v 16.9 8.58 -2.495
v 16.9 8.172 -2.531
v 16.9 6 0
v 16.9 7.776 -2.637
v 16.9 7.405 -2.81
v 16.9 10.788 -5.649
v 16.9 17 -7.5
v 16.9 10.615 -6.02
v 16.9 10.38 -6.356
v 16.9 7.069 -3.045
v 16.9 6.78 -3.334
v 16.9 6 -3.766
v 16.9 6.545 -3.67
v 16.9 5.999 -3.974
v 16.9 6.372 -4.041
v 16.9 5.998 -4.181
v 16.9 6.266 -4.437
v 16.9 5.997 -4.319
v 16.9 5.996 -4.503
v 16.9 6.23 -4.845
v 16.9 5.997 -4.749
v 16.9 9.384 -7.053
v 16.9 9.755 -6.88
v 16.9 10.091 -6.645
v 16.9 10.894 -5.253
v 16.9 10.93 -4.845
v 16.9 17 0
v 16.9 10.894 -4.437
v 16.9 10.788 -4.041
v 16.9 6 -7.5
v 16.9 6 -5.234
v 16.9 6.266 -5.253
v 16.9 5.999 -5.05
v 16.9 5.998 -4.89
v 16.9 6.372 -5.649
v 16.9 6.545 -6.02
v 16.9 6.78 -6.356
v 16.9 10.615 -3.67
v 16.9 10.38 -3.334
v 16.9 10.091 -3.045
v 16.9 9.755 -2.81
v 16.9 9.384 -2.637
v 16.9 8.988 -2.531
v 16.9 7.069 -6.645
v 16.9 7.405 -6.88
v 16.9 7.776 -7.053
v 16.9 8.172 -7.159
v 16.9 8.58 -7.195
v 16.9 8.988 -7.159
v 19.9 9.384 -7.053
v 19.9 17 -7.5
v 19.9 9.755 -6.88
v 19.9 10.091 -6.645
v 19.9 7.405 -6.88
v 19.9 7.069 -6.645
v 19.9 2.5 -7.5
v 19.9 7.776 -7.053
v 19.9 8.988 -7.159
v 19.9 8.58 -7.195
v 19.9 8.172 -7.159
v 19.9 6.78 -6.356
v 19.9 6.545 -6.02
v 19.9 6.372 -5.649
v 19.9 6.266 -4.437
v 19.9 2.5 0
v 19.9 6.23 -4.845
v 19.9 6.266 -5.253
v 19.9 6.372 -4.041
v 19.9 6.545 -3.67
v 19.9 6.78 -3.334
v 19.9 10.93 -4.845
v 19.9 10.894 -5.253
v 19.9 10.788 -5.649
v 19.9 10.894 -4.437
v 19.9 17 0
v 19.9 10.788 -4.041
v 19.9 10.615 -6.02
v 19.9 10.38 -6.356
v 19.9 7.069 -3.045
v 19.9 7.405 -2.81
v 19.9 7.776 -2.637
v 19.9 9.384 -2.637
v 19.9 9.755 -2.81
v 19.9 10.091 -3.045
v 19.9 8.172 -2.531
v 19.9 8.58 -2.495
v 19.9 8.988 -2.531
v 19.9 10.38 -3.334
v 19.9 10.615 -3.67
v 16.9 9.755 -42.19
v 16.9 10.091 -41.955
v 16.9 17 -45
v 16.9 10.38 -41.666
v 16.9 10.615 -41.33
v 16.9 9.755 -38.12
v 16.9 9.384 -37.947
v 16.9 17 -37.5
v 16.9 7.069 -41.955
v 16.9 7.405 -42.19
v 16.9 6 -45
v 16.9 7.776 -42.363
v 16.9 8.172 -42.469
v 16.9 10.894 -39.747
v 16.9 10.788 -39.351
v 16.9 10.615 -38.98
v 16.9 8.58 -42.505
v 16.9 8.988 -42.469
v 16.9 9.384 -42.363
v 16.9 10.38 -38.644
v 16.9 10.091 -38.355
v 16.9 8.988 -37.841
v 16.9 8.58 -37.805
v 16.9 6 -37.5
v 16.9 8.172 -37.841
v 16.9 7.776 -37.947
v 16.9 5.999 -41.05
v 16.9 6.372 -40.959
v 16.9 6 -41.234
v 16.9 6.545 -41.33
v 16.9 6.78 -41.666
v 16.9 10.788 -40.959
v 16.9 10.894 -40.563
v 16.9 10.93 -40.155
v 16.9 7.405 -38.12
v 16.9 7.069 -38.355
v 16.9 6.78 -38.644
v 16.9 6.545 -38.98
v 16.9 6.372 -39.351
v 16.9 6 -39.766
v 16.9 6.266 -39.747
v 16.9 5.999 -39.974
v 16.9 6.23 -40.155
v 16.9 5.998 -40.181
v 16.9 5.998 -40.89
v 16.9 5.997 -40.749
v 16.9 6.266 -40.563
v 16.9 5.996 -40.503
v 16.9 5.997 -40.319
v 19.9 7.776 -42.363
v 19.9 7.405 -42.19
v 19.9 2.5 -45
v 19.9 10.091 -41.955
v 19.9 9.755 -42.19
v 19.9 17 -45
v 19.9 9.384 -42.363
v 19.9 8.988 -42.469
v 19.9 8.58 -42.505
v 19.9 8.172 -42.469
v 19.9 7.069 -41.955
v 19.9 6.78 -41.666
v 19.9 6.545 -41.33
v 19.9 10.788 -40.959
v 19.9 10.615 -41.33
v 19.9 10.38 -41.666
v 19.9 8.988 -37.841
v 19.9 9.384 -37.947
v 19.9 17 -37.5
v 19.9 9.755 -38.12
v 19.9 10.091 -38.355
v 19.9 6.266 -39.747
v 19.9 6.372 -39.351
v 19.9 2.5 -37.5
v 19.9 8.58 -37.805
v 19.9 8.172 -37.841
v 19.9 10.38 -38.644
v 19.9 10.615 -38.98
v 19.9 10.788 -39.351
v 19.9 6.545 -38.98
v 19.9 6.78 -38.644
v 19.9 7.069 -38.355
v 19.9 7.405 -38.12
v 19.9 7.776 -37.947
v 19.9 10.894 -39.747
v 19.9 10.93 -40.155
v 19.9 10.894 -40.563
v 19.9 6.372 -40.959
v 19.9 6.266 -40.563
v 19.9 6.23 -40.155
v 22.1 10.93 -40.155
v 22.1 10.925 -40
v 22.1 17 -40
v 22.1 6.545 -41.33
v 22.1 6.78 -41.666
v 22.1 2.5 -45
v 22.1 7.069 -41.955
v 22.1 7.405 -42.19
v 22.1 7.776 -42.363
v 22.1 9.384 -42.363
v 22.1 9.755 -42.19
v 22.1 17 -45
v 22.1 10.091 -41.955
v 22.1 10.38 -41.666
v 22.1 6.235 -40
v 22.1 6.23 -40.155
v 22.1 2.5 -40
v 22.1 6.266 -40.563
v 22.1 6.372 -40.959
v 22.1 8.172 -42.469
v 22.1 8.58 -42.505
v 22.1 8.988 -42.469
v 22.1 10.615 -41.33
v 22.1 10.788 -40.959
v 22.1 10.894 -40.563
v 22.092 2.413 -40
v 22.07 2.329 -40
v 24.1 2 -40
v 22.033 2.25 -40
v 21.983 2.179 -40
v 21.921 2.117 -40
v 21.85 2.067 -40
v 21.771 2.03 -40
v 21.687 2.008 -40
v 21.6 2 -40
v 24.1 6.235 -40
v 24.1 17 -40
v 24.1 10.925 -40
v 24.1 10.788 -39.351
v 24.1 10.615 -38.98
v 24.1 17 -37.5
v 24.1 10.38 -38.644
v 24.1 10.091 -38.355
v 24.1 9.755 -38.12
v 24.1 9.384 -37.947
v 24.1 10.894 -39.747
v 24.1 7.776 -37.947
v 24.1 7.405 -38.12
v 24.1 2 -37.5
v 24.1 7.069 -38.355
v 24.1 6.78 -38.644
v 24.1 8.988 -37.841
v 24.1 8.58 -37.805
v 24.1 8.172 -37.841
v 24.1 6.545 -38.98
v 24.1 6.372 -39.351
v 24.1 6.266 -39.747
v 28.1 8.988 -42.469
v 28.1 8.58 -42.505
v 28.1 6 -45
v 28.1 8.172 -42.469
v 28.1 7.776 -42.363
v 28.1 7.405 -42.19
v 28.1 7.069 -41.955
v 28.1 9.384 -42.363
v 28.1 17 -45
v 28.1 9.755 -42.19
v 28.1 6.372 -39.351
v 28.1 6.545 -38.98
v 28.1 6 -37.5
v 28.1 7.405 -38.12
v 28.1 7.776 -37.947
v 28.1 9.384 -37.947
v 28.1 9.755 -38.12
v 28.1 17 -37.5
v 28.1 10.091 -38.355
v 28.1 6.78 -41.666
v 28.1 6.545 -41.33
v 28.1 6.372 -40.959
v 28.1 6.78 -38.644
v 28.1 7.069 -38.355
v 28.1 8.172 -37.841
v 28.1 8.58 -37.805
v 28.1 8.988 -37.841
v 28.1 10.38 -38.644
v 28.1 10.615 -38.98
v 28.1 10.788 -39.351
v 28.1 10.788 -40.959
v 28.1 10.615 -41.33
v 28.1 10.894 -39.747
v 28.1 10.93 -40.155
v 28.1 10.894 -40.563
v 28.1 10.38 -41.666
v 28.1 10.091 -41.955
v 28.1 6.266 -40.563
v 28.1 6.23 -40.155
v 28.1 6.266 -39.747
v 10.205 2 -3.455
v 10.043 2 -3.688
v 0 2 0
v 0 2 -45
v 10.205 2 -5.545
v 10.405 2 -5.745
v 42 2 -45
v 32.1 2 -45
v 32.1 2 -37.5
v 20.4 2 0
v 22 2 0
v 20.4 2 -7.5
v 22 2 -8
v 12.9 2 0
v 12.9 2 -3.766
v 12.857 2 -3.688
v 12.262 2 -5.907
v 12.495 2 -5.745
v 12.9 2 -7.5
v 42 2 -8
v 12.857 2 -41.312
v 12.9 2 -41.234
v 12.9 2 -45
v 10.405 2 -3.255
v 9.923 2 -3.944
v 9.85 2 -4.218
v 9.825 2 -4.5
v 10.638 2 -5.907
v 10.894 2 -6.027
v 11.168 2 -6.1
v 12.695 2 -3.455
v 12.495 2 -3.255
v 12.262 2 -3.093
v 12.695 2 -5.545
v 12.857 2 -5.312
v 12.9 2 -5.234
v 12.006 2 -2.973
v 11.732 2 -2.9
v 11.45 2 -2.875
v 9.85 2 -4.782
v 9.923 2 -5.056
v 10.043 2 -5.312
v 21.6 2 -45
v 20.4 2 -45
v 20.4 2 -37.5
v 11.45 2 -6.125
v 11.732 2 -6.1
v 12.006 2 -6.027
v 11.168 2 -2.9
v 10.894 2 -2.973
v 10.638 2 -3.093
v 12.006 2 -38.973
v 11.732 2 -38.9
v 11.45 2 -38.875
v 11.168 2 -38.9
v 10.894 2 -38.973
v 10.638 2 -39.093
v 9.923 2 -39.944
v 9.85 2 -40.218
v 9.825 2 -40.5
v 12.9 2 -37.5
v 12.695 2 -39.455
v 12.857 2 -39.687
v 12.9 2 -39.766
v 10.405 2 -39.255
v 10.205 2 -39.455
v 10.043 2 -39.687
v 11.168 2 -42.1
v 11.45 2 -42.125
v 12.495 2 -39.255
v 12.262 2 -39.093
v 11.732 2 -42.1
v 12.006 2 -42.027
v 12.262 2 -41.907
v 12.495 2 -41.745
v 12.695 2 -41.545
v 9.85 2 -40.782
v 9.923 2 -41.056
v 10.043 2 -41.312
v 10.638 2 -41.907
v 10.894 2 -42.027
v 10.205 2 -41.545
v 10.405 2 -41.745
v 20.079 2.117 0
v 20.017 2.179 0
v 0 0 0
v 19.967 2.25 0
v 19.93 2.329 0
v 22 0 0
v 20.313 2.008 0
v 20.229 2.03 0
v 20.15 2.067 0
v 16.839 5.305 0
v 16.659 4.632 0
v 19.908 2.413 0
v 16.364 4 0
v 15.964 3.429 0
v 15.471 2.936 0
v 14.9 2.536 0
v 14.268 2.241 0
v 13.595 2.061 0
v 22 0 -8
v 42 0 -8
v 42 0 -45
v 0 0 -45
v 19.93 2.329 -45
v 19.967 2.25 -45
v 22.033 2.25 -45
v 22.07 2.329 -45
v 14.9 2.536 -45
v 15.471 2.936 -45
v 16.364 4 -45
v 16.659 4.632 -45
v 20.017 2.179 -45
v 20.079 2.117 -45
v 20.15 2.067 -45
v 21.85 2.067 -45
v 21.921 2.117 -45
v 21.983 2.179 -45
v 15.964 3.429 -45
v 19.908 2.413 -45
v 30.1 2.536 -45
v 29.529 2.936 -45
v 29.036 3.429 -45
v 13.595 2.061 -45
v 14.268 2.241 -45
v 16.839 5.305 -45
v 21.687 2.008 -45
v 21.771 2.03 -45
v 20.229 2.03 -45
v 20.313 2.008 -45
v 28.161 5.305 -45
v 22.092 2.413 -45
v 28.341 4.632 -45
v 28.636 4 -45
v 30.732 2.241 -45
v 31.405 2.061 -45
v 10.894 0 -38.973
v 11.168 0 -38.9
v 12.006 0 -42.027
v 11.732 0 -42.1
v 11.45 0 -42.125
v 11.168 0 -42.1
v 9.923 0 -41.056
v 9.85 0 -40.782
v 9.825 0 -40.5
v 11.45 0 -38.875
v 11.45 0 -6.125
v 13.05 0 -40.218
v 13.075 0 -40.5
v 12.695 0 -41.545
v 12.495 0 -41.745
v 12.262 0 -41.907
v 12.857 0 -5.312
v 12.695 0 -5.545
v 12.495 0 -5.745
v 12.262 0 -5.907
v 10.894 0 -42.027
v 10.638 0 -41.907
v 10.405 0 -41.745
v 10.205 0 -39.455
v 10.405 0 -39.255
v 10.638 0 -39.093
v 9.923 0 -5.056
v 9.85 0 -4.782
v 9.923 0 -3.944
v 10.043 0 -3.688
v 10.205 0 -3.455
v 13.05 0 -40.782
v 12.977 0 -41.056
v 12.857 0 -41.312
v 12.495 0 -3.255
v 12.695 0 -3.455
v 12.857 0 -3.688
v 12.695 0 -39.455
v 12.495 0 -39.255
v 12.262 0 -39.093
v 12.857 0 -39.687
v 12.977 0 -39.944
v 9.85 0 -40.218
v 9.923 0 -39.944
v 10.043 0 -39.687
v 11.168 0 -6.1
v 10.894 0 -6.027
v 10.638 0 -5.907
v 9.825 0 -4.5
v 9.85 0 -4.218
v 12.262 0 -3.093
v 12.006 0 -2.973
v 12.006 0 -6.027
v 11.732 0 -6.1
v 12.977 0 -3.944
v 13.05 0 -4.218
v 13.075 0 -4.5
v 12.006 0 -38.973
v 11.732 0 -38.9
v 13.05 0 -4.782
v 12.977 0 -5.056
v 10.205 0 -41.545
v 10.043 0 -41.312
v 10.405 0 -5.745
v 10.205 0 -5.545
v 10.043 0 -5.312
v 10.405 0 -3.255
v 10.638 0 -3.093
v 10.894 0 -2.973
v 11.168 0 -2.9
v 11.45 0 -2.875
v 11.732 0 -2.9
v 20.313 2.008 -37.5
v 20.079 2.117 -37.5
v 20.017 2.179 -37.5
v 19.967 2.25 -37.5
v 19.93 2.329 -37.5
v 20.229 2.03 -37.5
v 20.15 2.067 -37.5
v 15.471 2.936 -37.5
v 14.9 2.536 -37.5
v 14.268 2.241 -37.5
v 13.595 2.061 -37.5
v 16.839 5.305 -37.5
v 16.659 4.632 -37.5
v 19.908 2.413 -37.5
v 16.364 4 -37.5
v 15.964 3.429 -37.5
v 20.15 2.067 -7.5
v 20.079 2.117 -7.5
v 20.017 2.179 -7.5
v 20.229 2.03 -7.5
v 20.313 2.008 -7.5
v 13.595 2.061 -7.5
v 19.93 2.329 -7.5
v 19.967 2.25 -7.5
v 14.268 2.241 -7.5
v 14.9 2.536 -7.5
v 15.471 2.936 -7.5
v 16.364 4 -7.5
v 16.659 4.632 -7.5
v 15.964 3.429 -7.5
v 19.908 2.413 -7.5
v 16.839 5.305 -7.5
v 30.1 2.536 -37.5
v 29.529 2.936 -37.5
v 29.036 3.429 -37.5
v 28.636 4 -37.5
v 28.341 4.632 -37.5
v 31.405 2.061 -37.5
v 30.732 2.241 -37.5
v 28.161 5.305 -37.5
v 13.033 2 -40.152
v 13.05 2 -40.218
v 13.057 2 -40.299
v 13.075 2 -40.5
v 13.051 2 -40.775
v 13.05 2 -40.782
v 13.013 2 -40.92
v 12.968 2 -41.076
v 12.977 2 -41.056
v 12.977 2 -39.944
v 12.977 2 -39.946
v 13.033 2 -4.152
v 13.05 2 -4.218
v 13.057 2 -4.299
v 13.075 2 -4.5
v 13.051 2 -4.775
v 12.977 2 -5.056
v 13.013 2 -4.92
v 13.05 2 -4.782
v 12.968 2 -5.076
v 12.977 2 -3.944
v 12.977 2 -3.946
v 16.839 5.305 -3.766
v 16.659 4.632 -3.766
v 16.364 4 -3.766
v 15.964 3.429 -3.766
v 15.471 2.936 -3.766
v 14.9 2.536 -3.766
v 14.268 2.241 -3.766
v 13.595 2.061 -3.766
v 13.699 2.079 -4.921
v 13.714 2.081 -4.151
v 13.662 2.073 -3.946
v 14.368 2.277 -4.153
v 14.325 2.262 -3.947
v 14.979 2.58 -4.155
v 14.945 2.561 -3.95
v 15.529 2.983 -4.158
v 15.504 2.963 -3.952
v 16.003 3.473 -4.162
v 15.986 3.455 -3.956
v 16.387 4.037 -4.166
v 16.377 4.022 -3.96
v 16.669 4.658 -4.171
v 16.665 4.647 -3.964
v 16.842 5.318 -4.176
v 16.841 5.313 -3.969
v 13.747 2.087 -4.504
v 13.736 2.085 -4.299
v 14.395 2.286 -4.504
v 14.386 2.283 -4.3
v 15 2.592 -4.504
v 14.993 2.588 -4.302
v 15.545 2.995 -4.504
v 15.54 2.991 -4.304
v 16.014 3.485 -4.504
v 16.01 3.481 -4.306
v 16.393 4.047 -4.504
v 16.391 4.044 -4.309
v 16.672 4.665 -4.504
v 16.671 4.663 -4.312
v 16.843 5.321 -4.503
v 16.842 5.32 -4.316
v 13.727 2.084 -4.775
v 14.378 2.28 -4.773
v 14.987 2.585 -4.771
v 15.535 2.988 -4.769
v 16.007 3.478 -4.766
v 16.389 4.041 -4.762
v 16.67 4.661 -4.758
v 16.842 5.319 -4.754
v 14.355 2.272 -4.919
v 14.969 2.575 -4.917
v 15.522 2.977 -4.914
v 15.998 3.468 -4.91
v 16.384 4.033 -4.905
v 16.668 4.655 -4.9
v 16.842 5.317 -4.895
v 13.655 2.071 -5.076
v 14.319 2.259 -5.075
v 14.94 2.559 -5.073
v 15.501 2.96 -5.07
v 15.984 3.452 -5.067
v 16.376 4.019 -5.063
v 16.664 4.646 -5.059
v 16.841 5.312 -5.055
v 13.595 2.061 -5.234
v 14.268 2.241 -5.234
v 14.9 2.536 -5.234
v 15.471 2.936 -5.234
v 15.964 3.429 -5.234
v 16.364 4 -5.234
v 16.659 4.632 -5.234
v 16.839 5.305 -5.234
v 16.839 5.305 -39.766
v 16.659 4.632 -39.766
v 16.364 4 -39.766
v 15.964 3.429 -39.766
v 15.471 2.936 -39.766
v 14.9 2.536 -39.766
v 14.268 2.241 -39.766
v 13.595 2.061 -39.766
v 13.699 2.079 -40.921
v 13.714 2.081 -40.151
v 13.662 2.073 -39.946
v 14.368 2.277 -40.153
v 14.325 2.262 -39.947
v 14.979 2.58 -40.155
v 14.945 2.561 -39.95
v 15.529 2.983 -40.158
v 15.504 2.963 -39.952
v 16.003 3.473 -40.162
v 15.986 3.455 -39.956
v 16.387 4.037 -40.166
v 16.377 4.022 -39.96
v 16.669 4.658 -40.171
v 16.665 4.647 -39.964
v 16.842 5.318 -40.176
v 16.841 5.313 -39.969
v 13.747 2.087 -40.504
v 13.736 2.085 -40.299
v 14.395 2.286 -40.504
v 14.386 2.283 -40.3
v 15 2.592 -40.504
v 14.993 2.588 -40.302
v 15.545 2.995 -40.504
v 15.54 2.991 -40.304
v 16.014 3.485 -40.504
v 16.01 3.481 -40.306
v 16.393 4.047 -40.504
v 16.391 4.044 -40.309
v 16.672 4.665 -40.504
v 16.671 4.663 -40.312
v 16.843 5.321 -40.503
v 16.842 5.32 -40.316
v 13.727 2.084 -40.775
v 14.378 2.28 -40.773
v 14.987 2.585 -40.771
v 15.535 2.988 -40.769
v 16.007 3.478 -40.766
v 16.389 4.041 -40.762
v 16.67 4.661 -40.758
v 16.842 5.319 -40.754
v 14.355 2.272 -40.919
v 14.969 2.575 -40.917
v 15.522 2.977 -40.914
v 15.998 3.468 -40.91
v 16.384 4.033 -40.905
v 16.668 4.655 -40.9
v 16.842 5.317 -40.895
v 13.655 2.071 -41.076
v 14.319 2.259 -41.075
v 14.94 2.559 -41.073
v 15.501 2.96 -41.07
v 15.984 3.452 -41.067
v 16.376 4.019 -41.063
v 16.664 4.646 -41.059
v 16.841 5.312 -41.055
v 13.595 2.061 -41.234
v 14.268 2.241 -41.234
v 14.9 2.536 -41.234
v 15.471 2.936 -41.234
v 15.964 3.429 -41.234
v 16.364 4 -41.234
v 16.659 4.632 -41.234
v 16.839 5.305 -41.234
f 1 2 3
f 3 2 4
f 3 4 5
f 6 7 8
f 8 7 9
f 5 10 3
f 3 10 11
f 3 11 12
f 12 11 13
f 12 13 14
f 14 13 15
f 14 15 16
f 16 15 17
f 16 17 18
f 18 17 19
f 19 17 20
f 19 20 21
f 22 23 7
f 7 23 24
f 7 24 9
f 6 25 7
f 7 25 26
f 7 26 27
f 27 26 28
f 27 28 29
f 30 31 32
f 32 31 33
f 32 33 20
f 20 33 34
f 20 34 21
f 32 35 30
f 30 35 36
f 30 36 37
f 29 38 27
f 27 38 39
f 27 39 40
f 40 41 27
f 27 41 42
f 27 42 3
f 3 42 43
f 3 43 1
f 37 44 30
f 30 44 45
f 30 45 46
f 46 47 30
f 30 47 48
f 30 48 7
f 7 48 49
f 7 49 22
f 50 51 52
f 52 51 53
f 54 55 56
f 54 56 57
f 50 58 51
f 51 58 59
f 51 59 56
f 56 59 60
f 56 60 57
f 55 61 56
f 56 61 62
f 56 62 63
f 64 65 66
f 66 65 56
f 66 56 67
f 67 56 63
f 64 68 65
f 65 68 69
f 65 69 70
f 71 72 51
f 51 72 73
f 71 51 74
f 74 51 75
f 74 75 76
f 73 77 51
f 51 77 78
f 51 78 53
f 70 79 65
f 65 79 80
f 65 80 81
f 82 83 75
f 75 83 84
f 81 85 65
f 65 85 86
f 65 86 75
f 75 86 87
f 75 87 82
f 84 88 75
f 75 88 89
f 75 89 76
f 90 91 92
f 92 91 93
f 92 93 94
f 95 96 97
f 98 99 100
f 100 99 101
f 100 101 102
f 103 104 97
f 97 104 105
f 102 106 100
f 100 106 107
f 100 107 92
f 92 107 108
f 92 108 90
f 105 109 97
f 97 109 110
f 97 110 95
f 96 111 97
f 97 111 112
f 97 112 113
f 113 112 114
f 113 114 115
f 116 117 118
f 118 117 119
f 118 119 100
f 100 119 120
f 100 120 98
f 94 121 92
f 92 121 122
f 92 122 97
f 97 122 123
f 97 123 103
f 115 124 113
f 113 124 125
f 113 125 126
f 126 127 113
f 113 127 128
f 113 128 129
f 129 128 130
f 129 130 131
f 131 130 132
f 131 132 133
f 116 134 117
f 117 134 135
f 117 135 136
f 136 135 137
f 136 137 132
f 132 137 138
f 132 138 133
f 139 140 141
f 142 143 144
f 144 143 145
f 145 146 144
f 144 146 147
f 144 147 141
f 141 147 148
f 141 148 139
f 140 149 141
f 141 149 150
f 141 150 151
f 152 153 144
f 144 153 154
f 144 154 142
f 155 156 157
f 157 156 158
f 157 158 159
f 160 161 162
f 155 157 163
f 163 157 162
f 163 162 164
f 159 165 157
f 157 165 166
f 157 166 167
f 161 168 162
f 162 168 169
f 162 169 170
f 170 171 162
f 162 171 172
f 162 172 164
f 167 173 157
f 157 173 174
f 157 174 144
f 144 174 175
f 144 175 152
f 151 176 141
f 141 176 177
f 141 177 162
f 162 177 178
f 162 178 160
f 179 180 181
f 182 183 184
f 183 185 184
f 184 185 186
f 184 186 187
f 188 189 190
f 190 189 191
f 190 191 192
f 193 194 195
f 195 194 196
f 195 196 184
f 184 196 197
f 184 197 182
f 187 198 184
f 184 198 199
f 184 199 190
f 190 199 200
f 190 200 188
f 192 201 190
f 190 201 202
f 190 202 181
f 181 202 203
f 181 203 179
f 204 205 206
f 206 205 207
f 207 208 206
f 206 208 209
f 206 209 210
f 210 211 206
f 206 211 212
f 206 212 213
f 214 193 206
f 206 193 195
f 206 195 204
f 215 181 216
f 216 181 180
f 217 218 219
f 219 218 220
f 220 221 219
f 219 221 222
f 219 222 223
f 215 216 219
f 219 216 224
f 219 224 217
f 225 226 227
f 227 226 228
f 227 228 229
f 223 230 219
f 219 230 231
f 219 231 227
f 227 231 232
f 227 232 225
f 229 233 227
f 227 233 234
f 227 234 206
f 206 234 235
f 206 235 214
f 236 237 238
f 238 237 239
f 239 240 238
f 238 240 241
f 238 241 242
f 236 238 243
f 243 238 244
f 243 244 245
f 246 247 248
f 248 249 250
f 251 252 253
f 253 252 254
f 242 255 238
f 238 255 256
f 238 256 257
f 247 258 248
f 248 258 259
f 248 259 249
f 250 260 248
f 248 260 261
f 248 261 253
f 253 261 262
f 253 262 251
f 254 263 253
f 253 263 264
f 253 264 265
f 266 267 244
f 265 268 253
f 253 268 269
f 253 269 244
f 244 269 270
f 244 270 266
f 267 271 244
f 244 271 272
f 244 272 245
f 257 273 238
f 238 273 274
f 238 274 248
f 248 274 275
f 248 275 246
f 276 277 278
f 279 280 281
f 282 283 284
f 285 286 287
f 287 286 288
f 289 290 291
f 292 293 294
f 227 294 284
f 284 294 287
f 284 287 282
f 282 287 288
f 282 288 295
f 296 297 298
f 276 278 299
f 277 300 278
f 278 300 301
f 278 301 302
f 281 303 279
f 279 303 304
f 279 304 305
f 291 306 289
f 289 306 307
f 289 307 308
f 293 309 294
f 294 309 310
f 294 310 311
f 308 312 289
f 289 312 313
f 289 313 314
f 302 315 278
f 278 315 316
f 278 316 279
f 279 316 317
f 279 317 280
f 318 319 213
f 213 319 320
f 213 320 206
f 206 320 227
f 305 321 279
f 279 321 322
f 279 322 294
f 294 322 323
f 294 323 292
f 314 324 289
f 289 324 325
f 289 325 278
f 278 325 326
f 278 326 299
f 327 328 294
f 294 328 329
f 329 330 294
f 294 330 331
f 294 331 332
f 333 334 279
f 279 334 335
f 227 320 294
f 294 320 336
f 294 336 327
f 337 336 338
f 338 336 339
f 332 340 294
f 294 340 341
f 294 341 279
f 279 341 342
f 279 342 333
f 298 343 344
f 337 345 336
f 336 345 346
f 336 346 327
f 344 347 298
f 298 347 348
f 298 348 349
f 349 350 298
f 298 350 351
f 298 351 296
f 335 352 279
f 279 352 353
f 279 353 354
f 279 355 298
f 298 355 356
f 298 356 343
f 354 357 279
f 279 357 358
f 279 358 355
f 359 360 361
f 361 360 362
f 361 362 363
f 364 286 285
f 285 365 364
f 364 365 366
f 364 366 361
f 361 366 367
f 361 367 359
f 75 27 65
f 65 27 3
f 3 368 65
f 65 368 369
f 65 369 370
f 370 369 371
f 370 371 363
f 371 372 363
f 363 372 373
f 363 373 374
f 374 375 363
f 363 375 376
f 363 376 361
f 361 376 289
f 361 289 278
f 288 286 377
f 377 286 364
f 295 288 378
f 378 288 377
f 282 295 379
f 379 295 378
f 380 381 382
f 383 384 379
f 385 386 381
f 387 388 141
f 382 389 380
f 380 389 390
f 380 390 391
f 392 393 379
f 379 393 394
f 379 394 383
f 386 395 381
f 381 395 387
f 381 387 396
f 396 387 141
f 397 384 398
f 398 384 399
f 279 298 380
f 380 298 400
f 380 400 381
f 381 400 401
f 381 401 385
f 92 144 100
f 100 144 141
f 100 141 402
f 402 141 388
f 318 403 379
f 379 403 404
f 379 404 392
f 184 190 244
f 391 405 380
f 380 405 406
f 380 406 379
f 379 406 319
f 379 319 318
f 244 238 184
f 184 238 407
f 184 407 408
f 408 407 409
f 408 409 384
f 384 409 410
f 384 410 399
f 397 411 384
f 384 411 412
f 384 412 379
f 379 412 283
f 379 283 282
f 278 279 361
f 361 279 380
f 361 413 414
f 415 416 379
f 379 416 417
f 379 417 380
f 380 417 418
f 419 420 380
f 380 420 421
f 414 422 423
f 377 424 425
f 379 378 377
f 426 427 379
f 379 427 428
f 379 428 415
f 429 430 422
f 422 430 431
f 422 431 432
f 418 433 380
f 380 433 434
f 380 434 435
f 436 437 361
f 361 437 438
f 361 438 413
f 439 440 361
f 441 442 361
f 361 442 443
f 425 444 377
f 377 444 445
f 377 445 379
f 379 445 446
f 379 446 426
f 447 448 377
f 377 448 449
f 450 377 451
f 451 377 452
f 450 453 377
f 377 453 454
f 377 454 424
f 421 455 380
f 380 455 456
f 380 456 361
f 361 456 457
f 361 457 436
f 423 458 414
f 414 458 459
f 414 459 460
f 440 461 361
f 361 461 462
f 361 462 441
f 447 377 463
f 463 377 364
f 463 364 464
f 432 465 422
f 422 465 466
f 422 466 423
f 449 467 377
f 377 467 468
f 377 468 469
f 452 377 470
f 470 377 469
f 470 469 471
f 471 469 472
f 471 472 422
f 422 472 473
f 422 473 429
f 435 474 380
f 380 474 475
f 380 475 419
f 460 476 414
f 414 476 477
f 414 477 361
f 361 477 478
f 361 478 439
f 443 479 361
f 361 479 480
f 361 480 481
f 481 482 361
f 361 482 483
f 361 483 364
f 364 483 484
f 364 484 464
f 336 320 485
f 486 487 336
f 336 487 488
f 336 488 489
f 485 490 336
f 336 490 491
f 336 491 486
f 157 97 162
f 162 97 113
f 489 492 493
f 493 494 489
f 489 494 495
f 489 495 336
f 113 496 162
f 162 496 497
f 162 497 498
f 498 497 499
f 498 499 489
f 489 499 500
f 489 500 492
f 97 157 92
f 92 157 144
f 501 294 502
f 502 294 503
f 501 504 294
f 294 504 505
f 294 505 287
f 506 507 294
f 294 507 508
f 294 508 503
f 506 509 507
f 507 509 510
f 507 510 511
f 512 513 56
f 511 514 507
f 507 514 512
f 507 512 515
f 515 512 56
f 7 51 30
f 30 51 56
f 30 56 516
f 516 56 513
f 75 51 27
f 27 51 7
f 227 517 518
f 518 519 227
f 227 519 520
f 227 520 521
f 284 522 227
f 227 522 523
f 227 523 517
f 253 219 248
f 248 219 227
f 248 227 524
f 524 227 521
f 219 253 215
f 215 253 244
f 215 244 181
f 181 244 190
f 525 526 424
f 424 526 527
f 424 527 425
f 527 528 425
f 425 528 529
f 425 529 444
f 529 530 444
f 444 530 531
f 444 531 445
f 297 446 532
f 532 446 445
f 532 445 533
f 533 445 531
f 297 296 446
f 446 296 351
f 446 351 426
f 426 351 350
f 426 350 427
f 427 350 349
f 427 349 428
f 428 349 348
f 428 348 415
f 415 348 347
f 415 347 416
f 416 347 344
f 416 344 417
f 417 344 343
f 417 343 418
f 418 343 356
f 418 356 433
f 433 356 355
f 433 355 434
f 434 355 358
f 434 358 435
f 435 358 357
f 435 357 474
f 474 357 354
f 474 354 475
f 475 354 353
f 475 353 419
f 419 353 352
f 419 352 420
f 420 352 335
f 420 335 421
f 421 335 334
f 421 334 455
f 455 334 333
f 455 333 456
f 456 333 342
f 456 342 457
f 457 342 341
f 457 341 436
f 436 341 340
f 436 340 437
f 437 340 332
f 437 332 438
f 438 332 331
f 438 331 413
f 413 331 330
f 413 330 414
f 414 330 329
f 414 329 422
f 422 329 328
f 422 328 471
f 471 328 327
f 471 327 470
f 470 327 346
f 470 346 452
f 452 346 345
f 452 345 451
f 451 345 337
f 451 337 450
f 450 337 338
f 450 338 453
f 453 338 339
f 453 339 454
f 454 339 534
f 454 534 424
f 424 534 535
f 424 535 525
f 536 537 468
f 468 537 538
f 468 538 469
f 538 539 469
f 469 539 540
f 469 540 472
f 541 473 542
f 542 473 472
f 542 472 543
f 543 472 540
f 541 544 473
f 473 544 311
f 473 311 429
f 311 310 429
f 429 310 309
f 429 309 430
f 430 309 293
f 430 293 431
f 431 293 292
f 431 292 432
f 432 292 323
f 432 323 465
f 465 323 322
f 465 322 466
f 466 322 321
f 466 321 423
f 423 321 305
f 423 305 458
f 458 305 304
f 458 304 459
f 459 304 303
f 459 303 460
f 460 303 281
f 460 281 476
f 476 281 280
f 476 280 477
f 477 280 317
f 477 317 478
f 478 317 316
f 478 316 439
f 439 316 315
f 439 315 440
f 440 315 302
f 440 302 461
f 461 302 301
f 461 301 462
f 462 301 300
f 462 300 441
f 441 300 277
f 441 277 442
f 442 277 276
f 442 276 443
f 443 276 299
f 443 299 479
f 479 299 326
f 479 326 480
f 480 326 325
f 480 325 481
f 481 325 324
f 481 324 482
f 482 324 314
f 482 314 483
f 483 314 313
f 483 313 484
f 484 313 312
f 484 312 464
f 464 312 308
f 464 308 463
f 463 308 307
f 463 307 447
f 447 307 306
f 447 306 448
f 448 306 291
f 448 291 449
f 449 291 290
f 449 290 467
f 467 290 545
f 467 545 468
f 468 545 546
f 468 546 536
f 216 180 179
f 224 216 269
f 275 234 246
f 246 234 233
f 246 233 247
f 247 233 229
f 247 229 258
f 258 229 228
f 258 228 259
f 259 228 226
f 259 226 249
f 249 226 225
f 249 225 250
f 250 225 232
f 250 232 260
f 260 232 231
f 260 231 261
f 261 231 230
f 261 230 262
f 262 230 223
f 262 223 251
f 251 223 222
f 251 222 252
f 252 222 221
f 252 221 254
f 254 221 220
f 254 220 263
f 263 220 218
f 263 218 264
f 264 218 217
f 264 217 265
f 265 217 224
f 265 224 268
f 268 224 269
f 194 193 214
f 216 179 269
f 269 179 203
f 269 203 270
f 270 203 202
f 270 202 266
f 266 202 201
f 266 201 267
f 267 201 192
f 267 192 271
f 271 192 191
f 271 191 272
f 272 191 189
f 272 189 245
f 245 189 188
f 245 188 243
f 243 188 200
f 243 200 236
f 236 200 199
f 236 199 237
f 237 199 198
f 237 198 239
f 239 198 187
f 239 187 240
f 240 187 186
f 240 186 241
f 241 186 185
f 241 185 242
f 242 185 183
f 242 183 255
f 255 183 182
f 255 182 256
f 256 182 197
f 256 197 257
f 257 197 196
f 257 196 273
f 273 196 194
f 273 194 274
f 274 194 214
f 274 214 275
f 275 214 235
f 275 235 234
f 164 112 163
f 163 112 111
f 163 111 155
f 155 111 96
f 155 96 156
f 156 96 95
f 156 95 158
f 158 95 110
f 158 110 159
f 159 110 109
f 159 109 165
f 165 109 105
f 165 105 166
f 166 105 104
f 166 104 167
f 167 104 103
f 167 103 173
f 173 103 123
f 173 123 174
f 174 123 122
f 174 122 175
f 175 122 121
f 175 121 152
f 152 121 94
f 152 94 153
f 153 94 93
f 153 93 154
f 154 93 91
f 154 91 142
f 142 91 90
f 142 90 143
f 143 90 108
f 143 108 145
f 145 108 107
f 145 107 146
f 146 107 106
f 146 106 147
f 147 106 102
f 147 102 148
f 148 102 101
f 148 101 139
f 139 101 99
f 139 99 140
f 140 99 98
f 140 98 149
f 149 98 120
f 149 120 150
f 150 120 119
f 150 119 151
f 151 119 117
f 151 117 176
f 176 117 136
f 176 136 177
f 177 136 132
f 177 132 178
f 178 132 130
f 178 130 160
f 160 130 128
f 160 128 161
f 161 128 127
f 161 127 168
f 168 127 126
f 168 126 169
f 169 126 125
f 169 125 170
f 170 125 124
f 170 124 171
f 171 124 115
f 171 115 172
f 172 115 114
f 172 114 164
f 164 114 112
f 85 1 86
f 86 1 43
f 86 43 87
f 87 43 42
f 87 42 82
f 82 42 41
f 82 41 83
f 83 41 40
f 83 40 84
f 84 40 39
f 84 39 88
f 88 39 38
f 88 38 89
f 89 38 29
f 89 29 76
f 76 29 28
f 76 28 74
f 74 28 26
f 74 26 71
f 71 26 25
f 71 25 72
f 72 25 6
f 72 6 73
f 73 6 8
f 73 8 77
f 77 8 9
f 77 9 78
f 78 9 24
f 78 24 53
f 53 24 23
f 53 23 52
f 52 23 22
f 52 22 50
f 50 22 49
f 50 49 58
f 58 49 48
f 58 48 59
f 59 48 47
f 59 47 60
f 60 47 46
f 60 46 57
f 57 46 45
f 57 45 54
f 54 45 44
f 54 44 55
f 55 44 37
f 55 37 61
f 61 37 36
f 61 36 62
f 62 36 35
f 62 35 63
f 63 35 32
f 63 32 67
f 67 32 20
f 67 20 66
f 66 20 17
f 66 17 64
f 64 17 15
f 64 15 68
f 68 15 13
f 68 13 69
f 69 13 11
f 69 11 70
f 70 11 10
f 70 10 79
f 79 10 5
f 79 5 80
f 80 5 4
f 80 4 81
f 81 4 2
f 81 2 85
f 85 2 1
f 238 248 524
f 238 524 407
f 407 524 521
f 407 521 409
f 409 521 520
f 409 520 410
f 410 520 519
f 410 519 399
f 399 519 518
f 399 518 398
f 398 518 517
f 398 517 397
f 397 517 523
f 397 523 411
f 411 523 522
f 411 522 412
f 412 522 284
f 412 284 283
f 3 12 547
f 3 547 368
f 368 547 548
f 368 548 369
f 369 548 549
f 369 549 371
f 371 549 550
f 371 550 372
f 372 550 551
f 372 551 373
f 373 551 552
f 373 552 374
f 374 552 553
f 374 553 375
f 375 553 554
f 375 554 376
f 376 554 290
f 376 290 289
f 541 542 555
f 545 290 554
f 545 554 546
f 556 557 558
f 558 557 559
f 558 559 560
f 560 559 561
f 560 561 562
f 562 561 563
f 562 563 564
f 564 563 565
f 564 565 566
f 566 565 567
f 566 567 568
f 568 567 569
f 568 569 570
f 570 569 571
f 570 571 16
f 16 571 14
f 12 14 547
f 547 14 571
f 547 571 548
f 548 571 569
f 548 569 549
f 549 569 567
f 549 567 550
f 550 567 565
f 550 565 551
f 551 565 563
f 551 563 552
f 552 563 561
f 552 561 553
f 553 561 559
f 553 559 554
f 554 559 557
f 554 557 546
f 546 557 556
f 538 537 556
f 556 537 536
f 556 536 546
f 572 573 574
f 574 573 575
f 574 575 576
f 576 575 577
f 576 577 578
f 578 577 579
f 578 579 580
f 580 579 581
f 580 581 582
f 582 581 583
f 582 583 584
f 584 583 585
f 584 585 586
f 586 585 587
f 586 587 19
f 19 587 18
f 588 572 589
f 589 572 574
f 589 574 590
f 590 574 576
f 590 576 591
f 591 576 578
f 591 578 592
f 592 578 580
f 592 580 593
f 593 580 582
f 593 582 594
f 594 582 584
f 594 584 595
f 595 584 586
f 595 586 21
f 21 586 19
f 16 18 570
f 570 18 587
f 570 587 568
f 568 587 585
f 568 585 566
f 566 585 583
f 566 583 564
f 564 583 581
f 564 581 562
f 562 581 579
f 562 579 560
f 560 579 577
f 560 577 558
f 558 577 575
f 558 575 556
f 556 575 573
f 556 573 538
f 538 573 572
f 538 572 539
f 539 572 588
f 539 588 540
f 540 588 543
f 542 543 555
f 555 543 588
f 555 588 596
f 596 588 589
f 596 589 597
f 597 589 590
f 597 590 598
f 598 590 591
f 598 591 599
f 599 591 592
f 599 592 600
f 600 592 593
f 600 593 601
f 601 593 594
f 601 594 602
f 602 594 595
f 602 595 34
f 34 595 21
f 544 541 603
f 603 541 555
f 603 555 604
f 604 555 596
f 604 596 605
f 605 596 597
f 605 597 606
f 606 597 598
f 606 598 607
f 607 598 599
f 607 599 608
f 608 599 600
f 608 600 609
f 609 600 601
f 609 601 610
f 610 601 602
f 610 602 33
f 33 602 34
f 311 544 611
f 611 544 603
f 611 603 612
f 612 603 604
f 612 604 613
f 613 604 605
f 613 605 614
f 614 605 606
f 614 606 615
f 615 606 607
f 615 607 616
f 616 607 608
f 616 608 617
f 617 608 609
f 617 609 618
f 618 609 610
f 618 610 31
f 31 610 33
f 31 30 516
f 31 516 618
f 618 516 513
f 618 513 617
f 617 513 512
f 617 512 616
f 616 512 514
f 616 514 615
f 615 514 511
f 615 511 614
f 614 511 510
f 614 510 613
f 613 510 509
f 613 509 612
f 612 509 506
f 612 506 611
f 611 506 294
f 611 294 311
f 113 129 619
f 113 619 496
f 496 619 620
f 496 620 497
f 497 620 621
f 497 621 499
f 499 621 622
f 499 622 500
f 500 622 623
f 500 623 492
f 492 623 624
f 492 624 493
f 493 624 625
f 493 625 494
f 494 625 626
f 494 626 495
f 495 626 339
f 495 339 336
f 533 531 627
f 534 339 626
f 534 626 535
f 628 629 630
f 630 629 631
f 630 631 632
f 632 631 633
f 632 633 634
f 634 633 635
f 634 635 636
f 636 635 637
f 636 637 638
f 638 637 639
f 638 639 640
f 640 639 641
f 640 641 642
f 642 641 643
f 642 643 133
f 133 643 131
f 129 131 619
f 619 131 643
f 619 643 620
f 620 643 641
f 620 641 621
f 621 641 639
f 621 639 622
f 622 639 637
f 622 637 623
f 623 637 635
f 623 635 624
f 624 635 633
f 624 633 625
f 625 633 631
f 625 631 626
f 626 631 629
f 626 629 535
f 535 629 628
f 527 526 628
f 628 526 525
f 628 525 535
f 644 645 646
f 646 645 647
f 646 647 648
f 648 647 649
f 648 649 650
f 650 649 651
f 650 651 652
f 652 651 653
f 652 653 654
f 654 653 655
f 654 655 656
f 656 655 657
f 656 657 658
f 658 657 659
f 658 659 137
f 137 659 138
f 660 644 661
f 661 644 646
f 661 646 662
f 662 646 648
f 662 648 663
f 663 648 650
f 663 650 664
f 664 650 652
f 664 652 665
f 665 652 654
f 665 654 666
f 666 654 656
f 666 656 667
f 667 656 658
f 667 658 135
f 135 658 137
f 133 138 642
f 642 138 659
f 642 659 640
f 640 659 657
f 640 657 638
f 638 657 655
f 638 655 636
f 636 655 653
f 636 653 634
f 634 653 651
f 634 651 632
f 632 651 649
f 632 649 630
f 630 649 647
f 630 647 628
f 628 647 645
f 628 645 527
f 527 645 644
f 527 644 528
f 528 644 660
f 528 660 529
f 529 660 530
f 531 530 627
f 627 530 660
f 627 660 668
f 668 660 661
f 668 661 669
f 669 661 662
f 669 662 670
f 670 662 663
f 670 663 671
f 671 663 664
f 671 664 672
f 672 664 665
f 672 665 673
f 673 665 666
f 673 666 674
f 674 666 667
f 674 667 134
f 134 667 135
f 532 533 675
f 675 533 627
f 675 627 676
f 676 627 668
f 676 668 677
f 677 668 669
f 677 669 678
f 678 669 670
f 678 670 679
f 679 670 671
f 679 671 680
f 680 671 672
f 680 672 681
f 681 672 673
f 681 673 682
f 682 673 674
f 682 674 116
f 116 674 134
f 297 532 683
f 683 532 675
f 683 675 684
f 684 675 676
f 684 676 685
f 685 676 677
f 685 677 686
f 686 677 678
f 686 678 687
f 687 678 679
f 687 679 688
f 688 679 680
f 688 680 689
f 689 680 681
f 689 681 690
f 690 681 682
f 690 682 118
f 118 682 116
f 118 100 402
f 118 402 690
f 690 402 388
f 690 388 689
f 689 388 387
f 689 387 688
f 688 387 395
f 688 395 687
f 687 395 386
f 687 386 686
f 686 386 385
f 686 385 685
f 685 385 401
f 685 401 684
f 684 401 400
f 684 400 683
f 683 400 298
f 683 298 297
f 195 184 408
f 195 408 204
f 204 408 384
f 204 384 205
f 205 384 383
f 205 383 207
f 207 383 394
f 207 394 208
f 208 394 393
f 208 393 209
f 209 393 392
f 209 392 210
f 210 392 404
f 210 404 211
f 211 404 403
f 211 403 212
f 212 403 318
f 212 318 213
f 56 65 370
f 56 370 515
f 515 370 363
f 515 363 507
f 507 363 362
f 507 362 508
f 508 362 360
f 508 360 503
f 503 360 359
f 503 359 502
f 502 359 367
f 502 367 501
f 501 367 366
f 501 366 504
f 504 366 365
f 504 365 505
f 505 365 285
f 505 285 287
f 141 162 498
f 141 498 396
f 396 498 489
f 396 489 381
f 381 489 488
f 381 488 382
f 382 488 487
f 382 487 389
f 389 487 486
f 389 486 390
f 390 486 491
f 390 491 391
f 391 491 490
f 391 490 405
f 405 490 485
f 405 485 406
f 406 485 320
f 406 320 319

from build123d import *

# Parameters (mm, degrees)
BOSS_EXTRUDE1_DEPTH = 2
SKETCH2_W           = 3
SKETCH2_H           = 7.5
BOSS_EXTRUDE2_DEPTH = 15
CUT_EXTRUDE1_REACH  = 4
SKETCH3_R           = 1.625
SKETCH4_R           = 2.35
CUT_EXTRUDE2_DEPTH  = 26.1
FILLET1_R           = 4
FILLET2_R           = 0.5


with BuildPart() as part:
    # Sketch1 → Boss-Extrude1 (new body)
    with BuildSketch(Plane(origin=(0, 0, 0), x_dir=(1, 0, 0), z_dir=(0, 1, 0))):
        Polygon((0, 0), (0, 45), (42, 45), (42, 8), (22, 8), (22, 0), align=None)
    extrude(amount=BOSS_EXTRUDE1_DEPTH)

    # Sketch2 → Boss-Extrude2 (add)
    with BuildSketch(Plane(origin=(0, 2, 0), x_dir=(1, 0, 0), z_dir=(0, 1, 0))):
        with Locations((18.4, 41.25)):
            Rectangle(SKETCH2_W, SKETCH2_H)
        with Locations((18.4, 3.75)):
            Rectangle(SKETCH2_W, SKETCH2_H)
        Polygon((22.1, 45), (22.1, 40), (24.1, 40), (24.1, 37.5), (28.1, 37.5), (28.1, 45), align=None)
    extrude(amount=BOSS_EXTRUDE2_DEPTH)

    # Sketch3 → Cut-Extrude1 (cut, up to next)
    with BuildSketch(Plane(origin=(0, 2, 0), x_dir=(1, 0, 0), z_dir=(0, 1, 0)), mode=Mode.PRIVATE) as cut_extrude1_sk1:
        with Locations((11.45, 40.5)):
            Circle(SKETCH3_R)
    cut_extrude1_tool1 = extrude(cut_extrude1_sk1.sketch, amount=-CUT_EXTRUDE1_REACH, mode=Mode.PRIVATE) & part.part
    add(cut_extrude1_tool1.solids().sort_by_distance((11.45, 2, -40.5))[0], mode=Mode.SUBTRACT)
    # Sketch3 → Cut-Extrude1 (cut, up to next)
    with BuildSketch(Plane(origin=(0, 2, 0), x_dir=(1, 0, 0), z_dir=(0, 1, 0)), mode=Mode.PRIVATE) as cut_extrude1_sk2:
        with Locations((11.45, 4.5)):
            Circle(SKETCH3_R)
    cut_extrude1_tool2 = extrude(cut_extrude1_sk2.sketch, amount=-CUT_EXTRUDE1_REACH, mode=Mode.PRIVATE) & part.part
    add(cut_extrude1_tool2.solids().sort_by_distance((11.45, 2, -4.5))[0], mode=Mode.SUBTRACT)

    # Sketch4 → Cut-Extrude2 (cut, through all)
    with BuildSketch(Plane(origin=(16.9, 0, 0), x_dir=(0, 0, -1), z_dir=(1, 0, 0))):
        with Locations((40.155, 8.58)):
            Circle(SKETCH4_R)
        with Locations((4.845, 8.58)):
            Circle(SKETCH4_R)
    extrude(amount=CUT_EXTRUDE2_DEPTH, mode=Mode.SUBTRACT)

    # Fillet1
    fillet1_edges = [part.edges().sort_by_distance(p)[0] for p in [
        (16.9, 2, -3.75),
        (16.9, 2, -41.25),
        (28.1, 2, -41.25),
    ]]
    fillet(fillet1_edges, radius=FILLET1_R)

    # Fillet2
    fillet2_edges = [part.edges().sort_by_distance(p)[0] for p in [
        (19.9, 2, -3.75),
        (19.9, 2, -41.25),
        (22.1, 2, -42.5),
    ]]
    fillet(fillet2_edges, radius=FILLET2_R)


solid = part.part
